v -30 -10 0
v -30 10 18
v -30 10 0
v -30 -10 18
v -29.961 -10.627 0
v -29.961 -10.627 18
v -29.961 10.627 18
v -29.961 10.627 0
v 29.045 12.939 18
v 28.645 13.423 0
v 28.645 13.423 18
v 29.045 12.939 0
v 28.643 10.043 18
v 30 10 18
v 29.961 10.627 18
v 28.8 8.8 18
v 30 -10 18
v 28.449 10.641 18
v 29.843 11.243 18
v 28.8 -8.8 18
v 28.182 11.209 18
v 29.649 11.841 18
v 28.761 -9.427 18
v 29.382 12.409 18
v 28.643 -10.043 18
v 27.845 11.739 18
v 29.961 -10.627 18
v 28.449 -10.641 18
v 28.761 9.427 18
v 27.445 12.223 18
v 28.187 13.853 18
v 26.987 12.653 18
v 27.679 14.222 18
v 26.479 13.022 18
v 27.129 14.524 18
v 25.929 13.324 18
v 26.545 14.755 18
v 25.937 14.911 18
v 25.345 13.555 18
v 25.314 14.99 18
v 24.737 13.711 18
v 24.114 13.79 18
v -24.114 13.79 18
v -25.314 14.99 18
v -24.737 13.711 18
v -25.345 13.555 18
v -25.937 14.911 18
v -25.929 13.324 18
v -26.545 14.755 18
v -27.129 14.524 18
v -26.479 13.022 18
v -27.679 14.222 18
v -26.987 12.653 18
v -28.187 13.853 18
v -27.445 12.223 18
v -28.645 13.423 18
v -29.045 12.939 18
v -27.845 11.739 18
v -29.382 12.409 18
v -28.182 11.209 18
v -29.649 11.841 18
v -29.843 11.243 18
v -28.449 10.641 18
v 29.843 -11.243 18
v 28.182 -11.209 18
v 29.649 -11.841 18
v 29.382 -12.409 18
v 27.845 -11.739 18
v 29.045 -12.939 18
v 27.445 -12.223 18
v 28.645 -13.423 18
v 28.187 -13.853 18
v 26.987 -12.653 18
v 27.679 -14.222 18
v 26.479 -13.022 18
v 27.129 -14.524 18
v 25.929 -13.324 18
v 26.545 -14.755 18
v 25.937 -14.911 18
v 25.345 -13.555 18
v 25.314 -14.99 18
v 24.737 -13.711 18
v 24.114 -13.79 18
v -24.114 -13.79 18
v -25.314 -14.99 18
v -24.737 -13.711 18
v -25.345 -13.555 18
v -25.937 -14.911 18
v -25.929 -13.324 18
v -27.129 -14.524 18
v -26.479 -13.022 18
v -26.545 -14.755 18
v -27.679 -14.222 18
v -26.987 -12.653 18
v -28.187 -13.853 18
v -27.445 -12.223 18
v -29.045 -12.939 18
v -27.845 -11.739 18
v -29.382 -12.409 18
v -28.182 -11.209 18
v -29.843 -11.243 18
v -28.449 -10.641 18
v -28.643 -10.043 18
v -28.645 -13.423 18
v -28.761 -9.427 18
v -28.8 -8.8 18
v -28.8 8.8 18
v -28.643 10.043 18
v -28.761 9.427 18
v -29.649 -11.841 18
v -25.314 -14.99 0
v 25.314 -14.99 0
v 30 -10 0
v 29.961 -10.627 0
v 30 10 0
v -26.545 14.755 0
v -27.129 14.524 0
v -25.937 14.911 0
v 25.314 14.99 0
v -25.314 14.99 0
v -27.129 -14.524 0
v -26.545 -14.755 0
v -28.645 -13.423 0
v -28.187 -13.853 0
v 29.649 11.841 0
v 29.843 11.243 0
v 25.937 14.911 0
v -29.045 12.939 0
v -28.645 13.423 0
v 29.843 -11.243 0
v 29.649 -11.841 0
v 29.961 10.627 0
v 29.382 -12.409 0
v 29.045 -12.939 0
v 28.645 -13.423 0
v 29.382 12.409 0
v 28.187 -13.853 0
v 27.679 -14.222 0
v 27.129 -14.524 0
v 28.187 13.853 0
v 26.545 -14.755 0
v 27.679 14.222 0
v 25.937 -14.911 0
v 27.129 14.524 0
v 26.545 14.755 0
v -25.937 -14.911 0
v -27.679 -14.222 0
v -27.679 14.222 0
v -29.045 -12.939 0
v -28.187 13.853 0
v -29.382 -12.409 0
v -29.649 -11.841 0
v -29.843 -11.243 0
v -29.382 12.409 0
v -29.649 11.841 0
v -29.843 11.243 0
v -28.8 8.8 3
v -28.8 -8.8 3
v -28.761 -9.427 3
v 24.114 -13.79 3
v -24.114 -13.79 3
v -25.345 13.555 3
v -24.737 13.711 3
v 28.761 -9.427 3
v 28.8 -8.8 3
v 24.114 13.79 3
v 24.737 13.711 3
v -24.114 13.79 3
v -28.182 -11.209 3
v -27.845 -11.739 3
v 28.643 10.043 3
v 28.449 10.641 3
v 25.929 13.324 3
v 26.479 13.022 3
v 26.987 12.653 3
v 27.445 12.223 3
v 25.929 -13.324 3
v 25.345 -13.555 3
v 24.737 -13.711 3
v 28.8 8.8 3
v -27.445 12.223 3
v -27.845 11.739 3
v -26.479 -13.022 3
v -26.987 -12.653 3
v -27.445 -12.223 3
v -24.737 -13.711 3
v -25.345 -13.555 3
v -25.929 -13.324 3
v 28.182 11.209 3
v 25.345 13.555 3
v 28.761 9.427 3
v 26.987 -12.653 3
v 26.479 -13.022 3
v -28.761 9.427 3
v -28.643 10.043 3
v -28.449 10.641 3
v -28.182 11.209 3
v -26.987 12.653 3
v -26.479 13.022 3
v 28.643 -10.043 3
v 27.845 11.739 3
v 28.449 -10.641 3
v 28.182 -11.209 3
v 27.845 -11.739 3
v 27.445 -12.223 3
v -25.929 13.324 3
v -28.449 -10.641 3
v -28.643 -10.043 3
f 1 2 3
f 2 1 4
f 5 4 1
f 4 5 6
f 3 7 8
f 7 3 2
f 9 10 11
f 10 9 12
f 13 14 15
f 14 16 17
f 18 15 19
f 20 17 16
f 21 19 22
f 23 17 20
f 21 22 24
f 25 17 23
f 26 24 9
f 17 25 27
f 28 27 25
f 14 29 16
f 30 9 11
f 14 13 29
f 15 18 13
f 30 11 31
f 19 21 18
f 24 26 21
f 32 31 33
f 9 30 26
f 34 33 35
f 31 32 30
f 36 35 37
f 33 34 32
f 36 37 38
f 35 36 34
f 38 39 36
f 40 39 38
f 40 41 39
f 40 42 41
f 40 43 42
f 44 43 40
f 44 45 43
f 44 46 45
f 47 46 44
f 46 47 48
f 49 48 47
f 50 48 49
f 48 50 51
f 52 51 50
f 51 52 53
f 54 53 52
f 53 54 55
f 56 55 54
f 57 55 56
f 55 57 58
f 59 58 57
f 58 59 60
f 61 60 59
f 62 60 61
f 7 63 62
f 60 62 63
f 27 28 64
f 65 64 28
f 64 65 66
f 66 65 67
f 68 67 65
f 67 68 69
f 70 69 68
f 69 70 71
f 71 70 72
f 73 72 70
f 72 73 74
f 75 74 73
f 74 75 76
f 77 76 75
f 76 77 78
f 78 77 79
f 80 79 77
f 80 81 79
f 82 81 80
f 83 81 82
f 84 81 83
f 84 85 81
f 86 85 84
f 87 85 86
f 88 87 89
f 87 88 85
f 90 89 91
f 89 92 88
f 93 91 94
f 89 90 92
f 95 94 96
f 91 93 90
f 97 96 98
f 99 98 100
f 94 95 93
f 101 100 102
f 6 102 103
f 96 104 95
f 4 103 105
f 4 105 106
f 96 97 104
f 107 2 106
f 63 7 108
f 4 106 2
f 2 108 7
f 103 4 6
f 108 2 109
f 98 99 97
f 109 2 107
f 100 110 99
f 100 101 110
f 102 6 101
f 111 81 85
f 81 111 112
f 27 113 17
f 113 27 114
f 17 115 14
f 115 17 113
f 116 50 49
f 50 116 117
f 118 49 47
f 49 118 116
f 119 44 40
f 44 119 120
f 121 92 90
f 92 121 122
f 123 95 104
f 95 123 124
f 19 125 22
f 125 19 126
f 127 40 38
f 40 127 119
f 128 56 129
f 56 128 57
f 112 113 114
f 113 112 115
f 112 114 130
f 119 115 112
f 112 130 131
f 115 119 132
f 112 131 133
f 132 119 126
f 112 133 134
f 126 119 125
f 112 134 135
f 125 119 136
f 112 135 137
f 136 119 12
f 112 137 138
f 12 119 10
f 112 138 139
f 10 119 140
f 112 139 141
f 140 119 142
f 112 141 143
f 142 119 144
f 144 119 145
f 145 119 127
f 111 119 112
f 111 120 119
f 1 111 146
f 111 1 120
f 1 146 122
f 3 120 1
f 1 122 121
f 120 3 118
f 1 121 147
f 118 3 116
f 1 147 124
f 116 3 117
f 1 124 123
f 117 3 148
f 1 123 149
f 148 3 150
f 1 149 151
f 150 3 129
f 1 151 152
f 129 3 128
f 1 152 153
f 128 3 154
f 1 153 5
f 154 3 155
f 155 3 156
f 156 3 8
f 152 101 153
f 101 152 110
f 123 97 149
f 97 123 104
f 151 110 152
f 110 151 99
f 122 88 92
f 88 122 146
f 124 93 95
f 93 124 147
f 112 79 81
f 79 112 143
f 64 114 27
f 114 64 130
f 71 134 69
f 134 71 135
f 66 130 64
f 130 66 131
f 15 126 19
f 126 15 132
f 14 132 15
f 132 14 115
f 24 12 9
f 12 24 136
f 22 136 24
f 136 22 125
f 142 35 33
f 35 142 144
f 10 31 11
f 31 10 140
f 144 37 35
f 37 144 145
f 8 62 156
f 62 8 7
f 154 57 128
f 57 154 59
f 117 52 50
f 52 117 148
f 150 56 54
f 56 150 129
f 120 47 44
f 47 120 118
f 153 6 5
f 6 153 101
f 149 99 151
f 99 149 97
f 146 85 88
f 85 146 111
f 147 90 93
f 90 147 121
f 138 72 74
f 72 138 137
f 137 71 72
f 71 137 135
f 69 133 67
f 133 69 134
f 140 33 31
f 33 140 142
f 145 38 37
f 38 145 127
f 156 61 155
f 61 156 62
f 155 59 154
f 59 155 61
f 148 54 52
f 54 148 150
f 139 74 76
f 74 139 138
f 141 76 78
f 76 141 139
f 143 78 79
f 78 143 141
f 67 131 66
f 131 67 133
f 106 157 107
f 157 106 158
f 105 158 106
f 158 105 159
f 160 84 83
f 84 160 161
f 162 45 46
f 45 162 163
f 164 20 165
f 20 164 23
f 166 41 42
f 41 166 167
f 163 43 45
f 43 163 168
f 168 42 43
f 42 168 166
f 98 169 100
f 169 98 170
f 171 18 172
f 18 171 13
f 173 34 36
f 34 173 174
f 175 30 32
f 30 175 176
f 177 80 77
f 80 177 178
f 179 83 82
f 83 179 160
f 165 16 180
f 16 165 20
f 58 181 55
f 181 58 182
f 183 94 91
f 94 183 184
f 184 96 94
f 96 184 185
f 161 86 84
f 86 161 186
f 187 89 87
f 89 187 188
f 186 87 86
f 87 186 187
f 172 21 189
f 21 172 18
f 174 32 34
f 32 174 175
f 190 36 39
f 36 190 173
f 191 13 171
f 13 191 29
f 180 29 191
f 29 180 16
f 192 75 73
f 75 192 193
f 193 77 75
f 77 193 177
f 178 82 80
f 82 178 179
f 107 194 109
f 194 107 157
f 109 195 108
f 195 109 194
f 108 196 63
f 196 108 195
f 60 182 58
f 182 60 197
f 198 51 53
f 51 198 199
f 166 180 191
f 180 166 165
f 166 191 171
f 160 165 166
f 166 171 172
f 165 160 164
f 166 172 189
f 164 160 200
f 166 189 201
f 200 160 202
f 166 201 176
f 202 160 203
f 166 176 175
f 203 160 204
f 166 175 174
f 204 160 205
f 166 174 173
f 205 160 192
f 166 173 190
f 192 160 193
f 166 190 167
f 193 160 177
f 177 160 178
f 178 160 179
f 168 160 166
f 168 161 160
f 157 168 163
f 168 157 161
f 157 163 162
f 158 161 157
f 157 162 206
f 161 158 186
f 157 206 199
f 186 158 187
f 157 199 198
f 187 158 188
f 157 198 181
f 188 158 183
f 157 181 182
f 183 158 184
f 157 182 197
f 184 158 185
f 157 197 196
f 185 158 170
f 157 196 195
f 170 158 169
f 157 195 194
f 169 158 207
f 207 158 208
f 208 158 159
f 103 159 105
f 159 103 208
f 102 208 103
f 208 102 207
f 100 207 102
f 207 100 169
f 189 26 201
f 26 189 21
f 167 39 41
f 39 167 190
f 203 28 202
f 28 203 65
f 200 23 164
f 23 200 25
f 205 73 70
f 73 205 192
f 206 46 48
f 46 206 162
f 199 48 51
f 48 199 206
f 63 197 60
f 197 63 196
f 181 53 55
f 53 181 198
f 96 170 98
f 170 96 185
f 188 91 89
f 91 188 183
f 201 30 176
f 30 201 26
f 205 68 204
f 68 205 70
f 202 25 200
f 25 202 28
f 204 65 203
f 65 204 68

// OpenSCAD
$fn = 50;


difference() {
	union() {
		hull() {
			translate(v = [-25.0000000000, 10.0000000000, 0]) {
				cylinder(h = 18, r = 5);
			}
			translate(v = [25.0000000000, 10.0000000000, 0]) {
				cylinder(h = 18, r = 5);
			}
			translate(v = [-25.0000000000, -10.0000000000, 0]) {
				cylinder(h = 18, r = 5);
			}
			translate(v = [25.0000000000, -10.0000000000, 0]) {
				cylinder(h = 18, r = 5);
			}
		}
	}
	union() {
		translate(v = [0, 0, 3]) {
			#hull() {
				translate(v = [-23.8000000000, 8.8000000000, 0]) {
					cylinder(h = 15, r = 5);
				}
				translate(v = [23.8000000000, 8.8000000000, 0]) {
					cylinder(h = 15, r = 5);
				}
				translate(v = [-23.8000000000, -8.8000000000, 0]) {
					cylinder(h = 15, r = 5);
				}
				translate(v = [23.8000000000, -8.8000000000, 0]) {
					cylinder(h = 15, r = 5);
				}
			}
		}
	}
}
